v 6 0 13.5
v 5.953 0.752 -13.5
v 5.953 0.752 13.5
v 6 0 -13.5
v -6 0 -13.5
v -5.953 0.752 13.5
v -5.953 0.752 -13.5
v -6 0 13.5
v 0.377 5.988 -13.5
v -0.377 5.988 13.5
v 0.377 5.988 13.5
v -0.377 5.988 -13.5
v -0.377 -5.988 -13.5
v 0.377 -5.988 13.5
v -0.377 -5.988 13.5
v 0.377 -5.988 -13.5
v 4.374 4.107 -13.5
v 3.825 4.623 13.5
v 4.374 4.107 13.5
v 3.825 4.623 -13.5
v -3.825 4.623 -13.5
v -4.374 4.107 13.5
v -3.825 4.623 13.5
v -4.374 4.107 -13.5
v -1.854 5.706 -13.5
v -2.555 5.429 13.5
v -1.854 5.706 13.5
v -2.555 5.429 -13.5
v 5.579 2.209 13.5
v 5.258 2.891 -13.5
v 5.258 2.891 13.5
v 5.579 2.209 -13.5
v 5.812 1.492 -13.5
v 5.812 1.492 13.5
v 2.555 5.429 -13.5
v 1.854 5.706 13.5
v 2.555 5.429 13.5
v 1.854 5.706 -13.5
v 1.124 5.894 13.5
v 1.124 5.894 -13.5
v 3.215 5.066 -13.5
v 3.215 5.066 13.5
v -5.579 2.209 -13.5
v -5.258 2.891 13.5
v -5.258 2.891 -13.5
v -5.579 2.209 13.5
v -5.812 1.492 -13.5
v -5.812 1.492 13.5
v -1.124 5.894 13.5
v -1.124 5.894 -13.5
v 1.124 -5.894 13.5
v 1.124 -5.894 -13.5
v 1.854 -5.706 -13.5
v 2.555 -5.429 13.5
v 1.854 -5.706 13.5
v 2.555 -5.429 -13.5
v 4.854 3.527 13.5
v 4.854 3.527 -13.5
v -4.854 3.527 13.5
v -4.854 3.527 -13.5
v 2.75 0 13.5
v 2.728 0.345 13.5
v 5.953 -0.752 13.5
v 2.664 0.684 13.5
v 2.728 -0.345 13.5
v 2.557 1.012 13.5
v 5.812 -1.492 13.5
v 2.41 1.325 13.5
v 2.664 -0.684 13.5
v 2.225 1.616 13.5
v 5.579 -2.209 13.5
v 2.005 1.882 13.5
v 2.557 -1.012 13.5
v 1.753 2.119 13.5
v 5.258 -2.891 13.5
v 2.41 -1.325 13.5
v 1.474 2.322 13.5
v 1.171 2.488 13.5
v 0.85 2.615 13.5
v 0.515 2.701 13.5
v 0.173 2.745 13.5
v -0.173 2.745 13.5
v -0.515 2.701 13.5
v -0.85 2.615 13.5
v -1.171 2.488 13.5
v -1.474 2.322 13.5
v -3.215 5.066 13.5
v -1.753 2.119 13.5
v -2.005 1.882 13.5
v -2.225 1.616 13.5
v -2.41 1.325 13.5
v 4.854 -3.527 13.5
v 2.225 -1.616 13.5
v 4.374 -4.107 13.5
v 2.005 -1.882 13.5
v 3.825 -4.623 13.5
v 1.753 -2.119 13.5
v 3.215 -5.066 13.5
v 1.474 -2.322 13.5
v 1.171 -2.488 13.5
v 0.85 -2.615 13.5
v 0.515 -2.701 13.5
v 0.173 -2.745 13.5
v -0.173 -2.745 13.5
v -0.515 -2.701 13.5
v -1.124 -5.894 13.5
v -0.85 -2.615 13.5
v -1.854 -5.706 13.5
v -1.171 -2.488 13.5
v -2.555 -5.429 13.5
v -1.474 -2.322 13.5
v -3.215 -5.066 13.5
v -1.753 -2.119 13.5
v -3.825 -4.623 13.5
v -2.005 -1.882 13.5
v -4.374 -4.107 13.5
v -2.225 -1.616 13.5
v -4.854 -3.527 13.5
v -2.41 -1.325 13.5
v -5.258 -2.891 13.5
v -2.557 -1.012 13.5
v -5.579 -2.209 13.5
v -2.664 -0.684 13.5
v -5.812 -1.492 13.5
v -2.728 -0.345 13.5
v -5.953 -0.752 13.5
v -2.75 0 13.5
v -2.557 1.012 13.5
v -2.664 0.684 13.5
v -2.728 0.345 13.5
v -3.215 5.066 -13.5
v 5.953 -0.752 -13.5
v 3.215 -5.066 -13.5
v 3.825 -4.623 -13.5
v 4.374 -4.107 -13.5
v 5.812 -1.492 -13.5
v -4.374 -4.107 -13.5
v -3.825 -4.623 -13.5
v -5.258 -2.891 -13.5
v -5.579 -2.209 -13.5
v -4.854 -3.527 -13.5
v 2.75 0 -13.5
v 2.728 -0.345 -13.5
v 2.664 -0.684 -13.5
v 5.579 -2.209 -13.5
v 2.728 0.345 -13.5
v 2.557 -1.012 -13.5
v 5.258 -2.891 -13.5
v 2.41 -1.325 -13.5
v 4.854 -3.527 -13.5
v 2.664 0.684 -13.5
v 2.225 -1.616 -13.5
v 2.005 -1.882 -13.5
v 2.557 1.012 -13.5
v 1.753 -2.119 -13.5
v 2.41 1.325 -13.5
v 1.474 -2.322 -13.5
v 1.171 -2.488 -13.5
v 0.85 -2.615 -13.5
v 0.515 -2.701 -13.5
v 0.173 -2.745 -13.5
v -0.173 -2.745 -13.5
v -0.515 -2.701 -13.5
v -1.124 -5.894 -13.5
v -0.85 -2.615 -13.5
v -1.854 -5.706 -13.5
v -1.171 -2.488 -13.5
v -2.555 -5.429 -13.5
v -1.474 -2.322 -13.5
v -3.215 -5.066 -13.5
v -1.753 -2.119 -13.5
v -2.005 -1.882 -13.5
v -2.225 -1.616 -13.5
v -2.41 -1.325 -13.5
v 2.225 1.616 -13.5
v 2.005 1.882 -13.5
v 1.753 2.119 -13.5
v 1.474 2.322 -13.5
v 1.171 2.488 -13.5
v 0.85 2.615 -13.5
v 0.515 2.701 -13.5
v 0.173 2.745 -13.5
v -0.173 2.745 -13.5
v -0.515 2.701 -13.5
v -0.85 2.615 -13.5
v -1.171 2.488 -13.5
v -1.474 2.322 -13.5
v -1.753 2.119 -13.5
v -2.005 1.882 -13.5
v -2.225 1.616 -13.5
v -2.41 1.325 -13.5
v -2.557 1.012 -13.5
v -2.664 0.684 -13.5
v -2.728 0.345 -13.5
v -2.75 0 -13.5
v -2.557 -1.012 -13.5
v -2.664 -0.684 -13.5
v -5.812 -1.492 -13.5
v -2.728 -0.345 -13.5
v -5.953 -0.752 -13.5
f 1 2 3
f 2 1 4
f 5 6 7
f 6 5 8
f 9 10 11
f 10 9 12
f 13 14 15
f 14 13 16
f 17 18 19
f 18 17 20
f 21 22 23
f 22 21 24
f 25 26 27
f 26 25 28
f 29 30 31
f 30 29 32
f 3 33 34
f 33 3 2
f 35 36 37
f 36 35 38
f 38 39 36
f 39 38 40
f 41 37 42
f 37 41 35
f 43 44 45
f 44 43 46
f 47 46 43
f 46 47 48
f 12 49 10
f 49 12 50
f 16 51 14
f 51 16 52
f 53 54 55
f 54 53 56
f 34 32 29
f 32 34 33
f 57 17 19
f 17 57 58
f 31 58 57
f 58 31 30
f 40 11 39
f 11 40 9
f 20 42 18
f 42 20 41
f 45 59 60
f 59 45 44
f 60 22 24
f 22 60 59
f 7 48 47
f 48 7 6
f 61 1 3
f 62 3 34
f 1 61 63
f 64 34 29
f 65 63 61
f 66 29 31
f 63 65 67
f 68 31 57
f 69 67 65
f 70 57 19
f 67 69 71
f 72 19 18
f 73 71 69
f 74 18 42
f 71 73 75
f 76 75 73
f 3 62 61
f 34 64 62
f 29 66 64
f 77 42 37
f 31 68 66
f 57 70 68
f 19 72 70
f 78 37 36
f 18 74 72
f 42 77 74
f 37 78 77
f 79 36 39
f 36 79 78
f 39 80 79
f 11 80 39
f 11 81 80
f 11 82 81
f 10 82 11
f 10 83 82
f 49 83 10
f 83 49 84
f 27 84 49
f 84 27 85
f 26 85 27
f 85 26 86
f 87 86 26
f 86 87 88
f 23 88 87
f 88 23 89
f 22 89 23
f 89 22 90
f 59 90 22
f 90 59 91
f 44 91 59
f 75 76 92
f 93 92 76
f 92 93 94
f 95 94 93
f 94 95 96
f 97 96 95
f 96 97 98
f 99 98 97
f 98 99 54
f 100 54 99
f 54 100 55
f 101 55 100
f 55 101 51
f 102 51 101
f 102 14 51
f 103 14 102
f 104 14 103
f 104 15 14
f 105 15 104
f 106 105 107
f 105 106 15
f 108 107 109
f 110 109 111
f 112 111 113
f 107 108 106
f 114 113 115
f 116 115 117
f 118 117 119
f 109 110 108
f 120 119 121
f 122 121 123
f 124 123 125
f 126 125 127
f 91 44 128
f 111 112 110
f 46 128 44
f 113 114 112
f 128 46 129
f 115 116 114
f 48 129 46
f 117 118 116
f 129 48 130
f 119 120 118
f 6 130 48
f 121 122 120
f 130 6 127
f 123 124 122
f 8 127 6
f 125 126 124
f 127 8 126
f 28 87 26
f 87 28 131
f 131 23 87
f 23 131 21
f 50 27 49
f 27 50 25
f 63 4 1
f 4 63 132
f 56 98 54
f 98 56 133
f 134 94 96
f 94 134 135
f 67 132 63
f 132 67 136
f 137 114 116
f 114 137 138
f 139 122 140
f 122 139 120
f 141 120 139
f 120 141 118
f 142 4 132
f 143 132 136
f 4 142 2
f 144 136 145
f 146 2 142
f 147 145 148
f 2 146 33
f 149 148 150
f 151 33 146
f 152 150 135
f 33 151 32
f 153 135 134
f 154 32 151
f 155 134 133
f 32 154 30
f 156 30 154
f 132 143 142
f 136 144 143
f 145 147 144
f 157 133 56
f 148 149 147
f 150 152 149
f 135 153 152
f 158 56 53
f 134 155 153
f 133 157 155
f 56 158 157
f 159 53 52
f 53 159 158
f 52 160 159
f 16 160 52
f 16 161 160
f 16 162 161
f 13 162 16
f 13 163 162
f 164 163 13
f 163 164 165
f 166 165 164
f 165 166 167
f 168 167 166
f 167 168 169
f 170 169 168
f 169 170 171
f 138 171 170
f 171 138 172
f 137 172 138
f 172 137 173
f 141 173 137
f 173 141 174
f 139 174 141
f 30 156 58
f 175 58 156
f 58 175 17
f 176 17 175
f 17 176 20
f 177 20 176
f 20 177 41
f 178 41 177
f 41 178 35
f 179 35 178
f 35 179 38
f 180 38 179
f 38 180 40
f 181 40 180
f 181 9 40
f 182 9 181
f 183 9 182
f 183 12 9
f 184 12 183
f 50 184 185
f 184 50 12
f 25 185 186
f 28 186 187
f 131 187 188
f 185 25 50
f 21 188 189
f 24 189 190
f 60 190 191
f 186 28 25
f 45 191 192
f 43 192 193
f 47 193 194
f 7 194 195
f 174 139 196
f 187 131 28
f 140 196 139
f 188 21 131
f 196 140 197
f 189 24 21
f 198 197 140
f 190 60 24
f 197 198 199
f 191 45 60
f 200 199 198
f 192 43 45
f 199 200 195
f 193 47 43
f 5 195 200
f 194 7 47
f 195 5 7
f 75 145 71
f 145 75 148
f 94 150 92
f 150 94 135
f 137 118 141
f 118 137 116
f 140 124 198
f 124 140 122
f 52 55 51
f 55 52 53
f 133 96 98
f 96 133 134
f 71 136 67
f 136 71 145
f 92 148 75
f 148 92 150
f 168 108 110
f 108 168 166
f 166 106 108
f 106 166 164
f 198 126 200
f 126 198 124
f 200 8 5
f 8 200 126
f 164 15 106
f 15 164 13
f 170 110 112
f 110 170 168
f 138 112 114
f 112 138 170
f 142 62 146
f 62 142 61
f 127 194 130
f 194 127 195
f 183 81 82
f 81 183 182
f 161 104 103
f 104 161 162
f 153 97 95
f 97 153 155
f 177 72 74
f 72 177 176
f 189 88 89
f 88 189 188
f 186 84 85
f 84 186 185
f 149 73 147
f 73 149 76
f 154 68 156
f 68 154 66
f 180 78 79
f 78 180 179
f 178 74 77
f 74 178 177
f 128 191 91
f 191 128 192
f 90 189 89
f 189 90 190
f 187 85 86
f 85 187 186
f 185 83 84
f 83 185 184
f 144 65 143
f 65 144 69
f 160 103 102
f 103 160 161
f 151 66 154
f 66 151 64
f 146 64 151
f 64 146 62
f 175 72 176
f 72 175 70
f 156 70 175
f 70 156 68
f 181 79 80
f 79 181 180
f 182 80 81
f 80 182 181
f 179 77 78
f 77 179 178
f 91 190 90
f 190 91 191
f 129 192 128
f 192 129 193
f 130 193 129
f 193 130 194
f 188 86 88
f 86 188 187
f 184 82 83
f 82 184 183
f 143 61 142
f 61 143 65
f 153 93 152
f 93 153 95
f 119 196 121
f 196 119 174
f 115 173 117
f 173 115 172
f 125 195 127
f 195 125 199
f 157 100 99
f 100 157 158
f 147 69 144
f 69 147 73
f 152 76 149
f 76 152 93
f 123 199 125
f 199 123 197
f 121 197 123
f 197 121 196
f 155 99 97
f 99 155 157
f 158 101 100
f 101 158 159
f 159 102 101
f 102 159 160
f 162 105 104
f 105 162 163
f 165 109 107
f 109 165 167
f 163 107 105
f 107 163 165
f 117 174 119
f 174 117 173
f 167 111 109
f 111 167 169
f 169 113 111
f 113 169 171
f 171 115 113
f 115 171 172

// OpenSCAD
$fn = 50;


difference() {
	union() {
		translate(v = [0, 0, -13.5000000000]) {
			cylinder(h = 27, r = 6.0000000000);
		}
	}
	union() {
		translate(v = [0, 0, -100.0000000000]) {
			cylinder(h = 200, r = 2.7500000000);
		}
	}
}
